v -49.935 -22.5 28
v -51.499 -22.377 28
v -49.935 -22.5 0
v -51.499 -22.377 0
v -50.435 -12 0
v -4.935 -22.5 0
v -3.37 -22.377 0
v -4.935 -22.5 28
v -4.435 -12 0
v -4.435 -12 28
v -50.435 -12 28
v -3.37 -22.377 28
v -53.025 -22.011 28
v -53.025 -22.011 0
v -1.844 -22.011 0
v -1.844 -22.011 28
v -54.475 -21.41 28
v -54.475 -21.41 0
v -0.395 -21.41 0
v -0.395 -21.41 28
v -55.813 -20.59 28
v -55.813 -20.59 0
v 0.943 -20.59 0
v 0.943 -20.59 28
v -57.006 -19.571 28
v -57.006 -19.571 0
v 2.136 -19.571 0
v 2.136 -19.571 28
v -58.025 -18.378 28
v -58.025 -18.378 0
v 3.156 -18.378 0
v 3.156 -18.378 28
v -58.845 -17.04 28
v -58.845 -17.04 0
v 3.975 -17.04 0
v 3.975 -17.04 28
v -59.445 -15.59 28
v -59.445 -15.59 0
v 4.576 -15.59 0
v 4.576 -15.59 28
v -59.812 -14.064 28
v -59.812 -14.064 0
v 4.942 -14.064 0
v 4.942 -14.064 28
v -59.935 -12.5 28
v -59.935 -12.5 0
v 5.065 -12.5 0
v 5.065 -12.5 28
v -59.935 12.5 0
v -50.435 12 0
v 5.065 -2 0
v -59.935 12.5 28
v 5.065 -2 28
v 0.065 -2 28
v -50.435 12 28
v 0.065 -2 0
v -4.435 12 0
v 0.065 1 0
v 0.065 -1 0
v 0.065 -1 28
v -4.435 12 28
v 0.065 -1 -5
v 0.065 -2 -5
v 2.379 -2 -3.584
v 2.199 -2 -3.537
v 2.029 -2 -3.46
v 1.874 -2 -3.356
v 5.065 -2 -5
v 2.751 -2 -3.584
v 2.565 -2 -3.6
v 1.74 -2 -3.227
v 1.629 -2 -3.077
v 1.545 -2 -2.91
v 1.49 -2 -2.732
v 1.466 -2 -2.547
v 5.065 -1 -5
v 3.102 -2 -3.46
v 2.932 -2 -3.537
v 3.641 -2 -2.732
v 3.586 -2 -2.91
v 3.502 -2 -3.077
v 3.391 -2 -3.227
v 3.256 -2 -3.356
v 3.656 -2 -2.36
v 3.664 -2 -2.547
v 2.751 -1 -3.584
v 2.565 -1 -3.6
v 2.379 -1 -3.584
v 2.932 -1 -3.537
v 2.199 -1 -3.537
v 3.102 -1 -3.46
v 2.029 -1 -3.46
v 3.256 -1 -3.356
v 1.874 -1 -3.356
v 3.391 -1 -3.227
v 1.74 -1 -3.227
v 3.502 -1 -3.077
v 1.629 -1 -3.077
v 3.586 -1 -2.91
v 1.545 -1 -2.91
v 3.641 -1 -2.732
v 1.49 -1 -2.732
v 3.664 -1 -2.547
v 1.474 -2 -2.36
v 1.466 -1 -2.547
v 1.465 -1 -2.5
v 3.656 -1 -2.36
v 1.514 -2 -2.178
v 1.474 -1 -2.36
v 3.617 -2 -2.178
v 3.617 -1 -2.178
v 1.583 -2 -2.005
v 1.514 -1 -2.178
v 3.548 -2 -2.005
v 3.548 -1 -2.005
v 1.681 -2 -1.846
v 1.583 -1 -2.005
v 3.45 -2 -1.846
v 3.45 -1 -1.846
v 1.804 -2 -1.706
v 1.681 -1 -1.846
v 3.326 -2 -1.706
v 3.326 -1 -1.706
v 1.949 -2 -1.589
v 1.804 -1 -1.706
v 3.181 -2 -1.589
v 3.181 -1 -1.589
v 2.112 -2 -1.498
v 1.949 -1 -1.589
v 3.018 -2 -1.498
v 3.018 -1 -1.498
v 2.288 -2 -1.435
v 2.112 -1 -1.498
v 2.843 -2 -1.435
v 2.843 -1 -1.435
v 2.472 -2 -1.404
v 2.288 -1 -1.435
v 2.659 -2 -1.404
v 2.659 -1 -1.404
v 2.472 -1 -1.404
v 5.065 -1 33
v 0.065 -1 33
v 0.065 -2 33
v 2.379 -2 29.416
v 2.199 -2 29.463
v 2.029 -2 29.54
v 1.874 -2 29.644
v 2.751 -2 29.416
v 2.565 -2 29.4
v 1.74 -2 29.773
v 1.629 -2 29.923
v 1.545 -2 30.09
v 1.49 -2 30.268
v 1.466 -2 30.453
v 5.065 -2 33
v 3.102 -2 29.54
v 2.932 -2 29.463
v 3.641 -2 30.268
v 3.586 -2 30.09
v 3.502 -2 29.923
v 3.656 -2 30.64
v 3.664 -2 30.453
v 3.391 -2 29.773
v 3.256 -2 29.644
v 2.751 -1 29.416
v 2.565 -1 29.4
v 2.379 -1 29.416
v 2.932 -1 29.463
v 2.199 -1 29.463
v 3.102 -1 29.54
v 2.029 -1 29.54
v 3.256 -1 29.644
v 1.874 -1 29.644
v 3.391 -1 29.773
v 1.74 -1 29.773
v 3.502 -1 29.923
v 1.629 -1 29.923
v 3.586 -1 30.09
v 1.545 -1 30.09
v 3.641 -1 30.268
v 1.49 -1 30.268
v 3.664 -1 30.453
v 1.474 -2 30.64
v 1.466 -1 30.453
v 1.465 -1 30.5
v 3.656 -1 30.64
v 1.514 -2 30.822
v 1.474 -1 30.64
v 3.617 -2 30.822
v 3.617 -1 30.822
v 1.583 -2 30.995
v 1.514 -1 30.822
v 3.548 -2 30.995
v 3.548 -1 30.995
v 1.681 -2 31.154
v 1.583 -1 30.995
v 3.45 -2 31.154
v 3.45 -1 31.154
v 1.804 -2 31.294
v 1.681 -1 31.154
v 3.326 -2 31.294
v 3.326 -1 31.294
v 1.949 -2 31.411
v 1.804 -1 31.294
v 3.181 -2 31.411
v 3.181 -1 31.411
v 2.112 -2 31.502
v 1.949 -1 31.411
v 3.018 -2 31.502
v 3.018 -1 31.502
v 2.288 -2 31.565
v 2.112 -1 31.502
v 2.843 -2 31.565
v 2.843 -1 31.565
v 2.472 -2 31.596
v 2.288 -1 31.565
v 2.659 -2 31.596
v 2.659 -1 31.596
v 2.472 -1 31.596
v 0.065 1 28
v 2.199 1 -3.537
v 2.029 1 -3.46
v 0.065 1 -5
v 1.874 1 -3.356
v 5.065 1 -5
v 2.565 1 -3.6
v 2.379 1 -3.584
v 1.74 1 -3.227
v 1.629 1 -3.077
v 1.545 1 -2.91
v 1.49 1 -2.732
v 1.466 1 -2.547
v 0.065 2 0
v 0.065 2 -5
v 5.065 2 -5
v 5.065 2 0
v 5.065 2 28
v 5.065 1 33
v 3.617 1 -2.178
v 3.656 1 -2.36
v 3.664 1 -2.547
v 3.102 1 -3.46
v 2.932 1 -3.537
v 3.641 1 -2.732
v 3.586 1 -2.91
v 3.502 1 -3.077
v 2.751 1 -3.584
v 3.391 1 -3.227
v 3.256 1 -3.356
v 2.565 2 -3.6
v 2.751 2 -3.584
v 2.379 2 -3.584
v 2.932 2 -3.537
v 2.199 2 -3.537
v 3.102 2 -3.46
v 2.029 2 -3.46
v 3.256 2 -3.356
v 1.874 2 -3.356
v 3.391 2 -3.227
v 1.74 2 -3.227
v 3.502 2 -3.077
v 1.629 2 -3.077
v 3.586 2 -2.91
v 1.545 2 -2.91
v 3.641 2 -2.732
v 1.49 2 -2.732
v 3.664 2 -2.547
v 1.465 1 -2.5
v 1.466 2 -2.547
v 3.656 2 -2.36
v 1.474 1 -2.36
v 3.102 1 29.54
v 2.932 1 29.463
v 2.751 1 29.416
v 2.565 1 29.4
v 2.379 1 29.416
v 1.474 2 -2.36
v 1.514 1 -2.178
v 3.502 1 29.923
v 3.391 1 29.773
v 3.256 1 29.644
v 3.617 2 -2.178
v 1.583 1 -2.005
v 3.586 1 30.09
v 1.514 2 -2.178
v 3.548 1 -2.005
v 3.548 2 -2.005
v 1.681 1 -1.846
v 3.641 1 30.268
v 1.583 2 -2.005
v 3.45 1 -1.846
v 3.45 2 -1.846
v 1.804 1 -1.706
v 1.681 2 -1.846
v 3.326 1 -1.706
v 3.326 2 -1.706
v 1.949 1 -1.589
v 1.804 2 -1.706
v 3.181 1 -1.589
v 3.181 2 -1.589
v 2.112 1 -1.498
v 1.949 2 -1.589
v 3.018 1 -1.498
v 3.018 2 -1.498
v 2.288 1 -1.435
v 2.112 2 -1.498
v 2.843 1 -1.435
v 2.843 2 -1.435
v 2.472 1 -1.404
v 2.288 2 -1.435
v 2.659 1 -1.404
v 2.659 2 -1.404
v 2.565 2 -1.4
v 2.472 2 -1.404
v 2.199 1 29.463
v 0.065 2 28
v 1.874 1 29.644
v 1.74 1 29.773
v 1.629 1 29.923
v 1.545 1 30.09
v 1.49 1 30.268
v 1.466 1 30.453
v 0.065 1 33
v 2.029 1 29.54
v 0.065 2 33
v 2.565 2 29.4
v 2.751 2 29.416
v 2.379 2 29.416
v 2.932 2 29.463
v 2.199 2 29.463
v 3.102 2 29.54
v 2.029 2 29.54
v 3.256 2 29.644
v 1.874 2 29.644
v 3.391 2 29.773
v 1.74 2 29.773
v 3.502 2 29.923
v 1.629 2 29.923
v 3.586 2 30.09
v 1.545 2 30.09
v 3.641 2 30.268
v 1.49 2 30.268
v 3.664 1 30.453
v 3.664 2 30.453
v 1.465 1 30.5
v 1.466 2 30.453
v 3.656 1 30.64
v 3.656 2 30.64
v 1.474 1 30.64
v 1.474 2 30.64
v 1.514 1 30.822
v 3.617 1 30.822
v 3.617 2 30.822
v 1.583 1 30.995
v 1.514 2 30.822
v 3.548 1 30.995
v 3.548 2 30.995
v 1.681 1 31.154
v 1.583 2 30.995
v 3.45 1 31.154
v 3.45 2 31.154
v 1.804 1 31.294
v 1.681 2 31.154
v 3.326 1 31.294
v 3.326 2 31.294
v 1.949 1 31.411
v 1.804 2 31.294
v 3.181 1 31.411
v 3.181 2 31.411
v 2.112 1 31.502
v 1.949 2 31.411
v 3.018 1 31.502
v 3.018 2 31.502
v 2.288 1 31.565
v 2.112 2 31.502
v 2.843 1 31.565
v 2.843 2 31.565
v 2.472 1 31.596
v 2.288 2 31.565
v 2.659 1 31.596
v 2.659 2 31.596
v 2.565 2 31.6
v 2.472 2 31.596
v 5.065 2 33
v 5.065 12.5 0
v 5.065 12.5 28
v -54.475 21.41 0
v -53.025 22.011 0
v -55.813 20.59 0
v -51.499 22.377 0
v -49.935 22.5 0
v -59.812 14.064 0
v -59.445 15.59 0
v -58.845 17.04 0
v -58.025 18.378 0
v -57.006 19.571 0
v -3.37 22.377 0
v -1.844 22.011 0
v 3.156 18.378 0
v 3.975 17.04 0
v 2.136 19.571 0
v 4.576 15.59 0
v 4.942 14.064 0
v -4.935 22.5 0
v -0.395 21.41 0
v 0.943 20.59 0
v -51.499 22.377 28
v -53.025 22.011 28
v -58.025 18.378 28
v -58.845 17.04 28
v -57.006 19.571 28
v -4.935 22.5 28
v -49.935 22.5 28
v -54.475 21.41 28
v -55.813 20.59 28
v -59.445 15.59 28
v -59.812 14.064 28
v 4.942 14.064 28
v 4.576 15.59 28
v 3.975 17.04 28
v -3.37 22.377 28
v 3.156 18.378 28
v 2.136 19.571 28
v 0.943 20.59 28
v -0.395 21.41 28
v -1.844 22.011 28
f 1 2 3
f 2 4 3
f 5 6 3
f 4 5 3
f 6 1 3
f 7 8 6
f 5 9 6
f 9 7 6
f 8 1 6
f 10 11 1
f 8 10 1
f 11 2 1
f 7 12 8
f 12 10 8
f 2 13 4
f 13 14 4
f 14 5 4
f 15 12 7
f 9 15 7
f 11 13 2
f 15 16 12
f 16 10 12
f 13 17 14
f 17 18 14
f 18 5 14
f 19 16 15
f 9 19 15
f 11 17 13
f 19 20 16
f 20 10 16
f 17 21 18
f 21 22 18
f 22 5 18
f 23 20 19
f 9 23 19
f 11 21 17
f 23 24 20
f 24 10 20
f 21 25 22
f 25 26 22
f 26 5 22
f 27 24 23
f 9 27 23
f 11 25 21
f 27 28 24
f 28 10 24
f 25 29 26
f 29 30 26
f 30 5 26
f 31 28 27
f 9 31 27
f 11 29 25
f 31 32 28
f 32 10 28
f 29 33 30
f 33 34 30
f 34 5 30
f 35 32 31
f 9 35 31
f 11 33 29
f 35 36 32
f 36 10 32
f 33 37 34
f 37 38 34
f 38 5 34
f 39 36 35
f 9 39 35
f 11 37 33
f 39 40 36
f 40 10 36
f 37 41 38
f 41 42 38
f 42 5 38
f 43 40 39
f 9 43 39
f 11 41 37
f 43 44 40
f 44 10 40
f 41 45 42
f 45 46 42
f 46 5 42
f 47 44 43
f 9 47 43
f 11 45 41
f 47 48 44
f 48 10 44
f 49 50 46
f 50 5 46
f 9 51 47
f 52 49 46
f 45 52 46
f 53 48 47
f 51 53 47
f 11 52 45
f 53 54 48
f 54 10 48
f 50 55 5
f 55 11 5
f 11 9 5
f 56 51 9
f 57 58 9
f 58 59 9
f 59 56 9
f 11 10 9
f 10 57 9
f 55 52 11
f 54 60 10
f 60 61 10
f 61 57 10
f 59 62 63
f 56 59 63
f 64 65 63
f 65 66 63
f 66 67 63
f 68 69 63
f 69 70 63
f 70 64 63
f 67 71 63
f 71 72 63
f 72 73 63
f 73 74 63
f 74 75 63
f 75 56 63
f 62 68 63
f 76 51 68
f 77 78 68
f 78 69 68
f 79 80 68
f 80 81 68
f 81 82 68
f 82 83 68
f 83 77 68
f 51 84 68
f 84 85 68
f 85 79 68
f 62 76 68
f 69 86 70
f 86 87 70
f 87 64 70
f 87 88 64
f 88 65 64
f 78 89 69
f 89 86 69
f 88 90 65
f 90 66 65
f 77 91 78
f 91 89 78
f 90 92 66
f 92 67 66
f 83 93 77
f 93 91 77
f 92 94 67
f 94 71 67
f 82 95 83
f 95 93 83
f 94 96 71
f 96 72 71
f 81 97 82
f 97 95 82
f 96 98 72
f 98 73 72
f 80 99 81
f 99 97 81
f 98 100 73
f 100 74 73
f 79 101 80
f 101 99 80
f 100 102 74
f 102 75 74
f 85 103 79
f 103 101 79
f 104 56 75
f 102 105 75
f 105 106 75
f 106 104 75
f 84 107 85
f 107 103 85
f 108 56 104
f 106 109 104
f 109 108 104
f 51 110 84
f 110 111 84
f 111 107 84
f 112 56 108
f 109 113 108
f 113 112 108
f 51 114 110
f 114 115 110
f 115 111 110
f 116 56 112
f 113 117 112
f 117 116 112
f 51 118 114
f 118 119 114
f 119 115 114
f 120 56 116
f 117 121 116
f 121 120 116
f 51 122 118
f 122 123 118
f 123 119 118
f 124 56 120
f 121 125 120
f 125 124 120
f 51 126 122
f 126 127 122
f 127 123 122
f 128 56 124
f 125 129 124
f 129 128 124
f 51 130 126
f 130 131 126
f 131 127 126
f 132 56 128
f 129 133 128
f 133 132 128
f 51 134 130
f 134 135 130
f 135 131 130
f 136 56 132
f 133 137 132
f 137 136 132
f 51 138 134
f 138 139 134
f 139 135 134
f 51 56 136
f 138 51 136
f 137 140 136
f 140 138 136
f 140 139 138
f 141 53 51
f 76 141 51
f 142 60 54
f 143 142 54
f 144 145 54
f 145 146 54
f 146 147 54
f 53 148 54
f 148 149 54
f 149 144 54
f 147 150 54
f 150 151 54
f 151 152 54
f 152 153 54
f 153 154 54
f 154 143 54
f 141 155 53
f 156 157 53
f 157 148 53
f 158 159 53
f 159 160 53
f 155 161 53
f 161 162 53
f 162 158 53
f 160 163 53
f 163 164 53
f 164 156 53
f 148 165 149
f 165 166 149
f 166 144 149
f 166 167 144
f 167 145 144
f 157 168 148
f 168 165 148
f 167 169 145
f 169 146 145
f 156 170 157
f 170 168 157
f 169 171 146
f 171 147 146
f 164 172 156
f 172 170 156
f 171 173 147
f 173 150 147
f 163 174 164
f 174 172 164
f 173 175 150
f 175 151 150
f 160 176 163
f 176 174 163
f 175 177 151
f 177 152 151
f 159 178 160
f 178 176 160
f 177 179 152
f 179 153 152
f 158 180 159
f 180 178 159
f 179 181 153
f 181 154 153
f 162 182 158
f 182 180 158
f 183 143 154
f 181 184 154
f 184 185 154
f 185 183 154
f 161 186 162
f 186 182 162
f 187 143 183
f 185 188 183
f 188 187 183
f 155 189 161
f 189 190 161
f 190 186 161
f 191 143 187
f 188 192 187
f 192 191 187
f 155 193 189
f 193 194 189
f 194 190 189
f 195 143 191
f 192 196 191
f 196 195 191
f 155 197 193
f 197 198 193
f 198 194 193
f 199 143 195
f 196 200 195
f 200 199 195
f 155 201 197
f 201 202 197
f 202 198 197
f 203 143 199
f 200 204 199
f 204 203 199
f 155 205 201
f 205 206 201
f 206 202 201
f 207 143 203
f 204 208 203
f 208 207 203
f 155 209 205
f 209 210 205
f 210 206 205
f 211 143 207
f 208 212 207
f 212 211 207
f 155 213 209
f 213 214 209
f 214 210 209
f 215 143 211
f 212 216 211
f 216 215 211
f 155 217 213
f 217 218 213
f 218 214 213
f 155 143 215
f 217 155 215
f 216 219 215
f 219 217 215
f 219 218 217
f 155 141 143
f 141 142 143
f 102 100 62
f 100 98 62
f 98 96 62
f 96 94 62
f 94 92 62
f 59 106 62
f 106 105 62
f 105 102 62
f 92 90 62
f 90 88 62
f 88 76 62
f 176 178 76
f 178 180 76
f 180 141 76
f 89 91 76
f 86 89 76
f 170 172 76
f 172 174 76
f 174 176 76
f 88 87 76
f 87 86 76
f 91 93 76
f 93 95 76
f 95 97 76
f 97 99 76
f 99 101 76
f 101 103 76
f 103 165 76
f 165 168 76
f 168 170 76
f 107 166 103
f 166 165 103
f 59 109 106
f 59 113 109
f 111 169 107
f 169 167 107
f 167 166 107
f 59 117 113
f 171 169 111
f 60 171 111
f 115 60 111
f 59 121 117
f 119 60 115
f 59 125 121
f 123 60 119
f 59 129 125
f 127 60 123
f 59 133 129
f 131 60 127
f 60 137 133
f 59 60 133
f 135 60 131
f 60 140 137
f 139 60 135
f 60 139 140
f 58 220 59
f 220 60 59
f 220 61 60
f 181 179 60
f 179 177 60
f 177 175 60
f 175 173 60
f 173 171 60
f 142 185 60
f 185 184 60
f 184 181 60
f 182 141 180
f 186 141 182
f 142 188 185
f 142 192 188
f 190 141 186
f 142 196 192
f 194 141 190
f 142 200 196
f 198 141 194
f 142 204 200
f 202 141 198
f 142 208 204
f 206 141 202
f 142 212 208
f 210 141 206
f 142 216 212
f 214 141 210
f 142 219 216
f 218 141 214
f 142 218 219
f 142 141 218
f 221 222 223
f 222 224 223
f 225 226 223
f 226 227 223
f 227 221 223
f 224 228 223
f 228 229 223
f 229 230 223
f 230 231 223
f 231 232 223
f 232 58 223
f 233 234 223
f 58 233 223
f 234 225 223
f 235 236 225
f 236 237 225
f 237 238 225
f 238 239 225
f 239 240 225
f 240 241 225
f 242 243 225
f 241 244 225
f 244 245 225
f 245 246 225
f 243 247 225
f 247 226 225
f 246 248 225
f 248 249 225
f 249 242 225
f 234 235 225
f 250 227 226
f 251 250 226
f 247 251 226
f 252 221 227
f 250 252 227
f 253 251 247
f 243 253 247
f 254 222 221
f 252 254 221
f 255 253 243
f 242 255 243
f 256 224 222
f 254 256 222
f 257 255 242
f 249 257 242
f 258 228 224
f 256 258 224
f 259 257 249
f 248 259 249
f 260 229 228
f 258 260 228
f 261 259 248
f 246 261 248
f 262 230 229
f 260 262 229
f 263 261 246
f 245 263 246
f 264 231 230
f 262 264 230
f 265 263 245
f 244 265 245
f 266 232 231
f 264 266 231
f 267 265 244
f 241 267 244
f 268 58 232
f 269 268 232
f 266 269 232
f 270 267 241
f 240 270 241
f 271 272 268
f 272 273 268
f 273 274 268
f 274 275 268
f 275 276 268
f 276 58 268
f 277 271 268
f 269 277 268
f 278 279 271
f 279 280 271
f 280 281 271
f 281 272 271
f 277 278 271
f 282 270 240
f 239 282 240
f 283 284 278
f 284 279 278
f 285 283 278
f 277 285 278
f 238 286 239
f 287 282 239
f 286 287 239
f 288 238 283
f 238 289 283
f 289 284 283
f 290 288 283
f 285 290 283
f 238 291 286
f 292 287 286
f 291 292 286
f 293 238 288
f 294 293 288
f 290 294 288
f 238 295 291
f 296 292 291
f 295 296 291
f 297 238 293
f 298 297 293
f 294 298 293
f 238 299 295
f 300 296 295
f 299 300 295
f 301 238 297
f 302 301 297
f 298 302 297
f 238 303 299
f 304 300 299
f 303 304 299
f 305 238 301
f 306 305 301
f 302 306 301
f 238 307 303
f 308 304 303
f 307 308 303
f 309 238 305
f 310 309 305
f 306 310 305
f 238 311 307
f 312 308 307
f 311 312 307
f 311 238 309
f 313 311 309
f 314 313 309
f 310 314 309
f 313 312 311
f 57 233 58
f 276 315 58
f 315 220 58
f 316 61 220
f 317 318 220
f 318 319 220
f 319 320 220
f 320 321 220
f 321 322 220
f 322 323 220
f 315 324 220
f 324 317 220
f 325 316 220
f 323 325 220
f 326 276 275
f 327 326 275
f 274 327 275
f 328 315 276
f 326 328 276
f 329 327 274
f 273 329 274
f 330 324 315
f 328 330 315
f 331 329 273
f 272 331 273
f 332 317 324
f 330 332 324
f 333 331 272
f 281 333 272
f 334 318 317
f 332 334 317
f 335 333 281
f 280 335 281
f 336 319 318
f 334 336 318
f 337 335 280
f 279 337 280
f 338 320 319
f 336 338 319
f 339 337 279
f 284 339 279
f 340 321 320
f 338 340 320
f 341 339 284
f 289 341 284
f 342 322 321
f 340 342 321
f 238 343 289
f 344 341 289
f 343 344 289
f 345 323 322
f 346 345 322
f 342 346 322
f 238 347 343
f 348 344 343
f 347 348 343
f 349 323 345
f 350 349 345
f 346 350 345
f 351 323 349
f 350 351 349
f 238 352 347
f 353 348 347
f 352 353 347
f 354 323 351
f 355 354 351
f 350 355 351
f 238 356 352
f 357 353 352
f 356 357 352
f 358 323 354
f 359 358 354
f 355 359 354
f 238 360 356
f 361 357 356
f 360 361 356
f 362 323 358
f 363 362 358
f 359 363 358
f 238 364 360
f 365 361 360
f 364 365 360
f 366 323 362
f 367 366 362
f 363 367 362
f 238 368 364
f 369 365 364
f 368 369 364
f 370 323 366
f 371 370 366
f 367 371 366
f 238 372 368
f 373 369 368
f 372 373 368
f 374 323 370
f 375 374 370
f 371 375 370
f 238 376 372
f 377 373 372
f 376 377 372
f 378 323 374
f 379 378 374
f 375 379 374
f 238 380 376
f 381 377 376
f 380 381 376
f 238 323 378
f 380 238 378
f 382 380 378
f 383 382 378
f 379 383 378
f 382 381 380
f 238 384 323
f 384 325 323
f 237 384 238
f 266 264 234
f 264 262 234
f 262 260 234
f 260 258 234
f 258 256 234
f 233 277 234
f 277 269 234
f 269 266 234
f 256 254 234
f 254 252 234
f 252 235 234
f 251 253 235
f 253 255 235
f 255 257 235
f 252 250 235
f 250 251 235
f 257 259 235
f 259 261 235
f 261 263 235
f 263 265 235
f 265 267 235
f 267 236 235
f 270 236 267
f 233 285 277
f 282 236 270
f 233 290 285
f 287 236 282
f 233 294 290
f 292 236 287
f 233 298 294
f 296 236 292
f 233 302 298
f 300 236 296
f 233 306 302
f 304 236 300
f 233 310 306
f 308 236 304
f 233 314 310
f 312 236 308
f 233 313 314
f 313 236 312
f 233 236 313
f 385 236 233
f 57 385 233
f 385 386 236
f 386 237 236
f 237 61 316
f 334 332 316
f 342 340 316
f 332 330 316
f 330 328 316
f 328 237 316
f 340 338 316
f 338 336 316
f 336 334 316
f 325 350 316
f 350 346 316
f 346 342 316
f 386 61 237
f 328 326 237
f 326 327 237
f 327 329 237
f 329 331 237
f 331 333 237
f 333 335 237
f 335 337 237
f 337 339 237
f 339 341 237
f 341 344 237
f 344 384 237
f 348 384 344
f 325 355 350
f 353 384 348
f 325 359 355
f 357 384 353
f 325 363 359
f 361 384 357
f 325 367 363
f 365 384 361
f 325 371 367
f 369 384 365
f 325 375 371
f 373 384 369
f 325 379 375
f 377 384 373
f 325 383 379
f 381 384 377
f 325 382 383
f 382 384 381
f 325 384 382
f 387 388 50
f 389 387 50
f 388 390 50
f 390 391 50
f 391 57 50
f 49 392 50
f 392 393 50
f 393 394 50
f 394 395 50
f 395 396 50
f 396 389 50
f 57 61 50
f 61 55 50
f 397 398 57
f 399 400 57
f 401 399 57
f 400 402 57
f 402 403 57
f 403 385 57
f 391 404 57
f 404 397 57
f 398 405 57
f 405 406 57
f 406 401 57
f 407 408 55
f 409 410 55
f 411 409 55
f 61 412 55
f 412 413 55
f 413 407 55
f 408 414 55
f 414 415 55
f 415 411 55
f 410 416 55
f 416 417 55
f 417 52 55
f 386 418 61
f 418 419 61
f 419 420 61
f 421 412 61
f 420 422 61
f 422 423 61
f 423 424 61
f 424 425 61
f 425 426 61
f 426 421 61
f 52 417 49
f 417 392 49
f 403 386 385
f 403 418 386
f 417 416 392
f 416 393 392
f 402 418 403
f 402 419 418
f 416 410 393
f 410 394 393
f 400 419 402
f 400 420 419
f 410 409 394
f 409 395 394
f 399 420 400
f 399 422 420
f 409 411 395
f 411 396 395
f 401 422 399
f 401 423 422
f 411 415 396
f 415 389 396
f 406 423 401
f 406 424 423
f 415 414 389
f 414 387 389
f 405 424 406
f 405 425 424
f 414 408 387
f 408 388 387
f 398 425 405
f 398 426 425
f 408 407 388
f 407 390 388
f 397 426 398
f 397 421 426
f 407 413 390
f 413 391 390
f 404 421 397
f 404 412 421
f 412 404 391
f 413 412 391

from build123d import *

# Parameters (mm, degrees)
SKETCH_1_W               = 65
SKETCH_1_H               = 45
EXTRUDE_1_DEPTH          = 28
SKETCH_2_W               = 46
SKETCH_2_H               = 24
CUT_EXTRUDE_1_DEPTH      = 39
FILLET_1_R               = 10
FILLET_2_R               = 10
FILLET_3_R               = 10
FILLET_4_R               = 10
SKETCH_9_W               = 5
SKETCH_9_H               = 34.070621565
CUT_EXTRUDE_2_DEPTH      = 1
CUT_EXTRUDE_2_DEPTH_BACK = 1
SKETCH_10_W              = 5
SKETCH_10_H              = 1
EXTRUDE_5_DEPTH          = 5
SKETCH_12_R              = 1.1
CUT_EXTRUDE_3_DEPTH      = 5
PATTERN_LINEAR_1_COUNT   = 2
PATTERN_LINEAR_1_PITCH   = 33
PATTERN_LINEAR_2_COUNT   = 2
PATTERN_LINEAR_2_PITCH   = 33


with BuildPart() as part:
    # 草圖1 → 填料-伸長1 (new body)
    with BuildSketch(Plane.XY):
        with Locations((-27.434655272, 0)):
            Rectangle(SKETCH_1_W, SKETCH_1_H)
    extrude(amount=EXTRUDE_1_DEPTH)

    # 草圖2 → 除料-伸長1 (cut)
    with BuildSketch(Plane.XY):
        with Locations((-27.434655272, 0)):
            Rectangle(SKETCH_2_W, SKETCH_2_H)
    extrude(amount=CUT_EXTRUDE_1_DEPTH, mode=Mode.SUBTRACT)

    # 圓角1
    fillet_1_edges = [part.edges().sort_by_distance(p)[0] for p in [
        (-59.934655272, -22.5, 14),
    ]]
    fillet(fillet_1_edges, radius=FILLET_1_R)

    # 圓角2
    fillet_2_edges = [part.edges().sort_by_distance(p)[0] for p in [
        (-59.934655272, 22.5, 14),
    ]]
    fillet(fillet_2_edges, radius=FILLET_2_R)

    # 圓角3
    fillet_3_edges = [part.edges().sort_by_distance(p)[0] for p in [
        (5.065344728, 22.5, 14),
    ]]
    fillet(fillet_3_edges, radius=FILLET_3_R)

    # 圓角4
    fillet_4_edges = [part.edges().sort_by_distance(p)[0] for p in [
        (5.065344728, -22.5, 14),
    ]]
    fillet(fillet_4_edges, radius=FILLET_4_R)

    # 草圖9 → 除料-伸長2 (cut, two sides)
    with BuildSketch(Plane(origin=(0, 0, 0), x_dir=(1, 0, 0), z_dir=(0, 1, 0))) as cut_extrude_2_sk:
        with Locations((2.565344728, -13.723230761)):
            Rectangle(SKETCH_9_W, SKETCH_9_H)
    extrude(amount=CUT_EXTRUDE_2_DEPTH, mode=Mode.SUBTRACT)
    extrude(cut_extrude_2_sk.sketch, amount=-CUT_EXTRUDE_2_DEPTH_BACK, mode=Mode.SUBTRACT)

    # 草圖10 → 填料-伸長5 (add)
    with BuildSketch(Plane.XY):
        with Locations((2.565344728, -1.5)):
            Rectangle(SKETCH_10_W, SKETCH_10_H)
        with Locations((2.565344728, 1.5)):
            Rectangle(SKETCH_10_W, SKETCH_10_H)
    extrude_5 = extrude(amount=-EXTRUDE_5_DEPTH)

    # 草圖12 → 除料-伸長3 (cut)
    with BuildSketch(Plane(origin=(0, -2, 0), x_dir=(-1, 0, 0), z_dir=(0, -1, 0))):
        with Locations((-2.565344728, 2.5)):
            Circle(SKETCH_12_R)
    cut_extrude_3 = extrude(amount=-CUT_EXTRUDE_3_DEPTH, mode=Mode.SUBTRACT)

    # 直線複製排列1: 填料-伸長5 ×2
    with Locations(*[(0, 0, i * PATTERN_LINEAR_1_PITCH) for i in range(1, PATTERN_LINEAR_1_COUNT)]):
        add(extrude_5)

    # 直線複製排列2: 除料-伸長3 ×2
    with Locations(*[(0, 0, i * PATTERN_LINEAR_2_PITCH) for i in range(1, PATTERN_LINEAR_2_COUNT)]):
        add(cut_extrude_3, mode=Mode.SUBTRACT)


solid = part.part
